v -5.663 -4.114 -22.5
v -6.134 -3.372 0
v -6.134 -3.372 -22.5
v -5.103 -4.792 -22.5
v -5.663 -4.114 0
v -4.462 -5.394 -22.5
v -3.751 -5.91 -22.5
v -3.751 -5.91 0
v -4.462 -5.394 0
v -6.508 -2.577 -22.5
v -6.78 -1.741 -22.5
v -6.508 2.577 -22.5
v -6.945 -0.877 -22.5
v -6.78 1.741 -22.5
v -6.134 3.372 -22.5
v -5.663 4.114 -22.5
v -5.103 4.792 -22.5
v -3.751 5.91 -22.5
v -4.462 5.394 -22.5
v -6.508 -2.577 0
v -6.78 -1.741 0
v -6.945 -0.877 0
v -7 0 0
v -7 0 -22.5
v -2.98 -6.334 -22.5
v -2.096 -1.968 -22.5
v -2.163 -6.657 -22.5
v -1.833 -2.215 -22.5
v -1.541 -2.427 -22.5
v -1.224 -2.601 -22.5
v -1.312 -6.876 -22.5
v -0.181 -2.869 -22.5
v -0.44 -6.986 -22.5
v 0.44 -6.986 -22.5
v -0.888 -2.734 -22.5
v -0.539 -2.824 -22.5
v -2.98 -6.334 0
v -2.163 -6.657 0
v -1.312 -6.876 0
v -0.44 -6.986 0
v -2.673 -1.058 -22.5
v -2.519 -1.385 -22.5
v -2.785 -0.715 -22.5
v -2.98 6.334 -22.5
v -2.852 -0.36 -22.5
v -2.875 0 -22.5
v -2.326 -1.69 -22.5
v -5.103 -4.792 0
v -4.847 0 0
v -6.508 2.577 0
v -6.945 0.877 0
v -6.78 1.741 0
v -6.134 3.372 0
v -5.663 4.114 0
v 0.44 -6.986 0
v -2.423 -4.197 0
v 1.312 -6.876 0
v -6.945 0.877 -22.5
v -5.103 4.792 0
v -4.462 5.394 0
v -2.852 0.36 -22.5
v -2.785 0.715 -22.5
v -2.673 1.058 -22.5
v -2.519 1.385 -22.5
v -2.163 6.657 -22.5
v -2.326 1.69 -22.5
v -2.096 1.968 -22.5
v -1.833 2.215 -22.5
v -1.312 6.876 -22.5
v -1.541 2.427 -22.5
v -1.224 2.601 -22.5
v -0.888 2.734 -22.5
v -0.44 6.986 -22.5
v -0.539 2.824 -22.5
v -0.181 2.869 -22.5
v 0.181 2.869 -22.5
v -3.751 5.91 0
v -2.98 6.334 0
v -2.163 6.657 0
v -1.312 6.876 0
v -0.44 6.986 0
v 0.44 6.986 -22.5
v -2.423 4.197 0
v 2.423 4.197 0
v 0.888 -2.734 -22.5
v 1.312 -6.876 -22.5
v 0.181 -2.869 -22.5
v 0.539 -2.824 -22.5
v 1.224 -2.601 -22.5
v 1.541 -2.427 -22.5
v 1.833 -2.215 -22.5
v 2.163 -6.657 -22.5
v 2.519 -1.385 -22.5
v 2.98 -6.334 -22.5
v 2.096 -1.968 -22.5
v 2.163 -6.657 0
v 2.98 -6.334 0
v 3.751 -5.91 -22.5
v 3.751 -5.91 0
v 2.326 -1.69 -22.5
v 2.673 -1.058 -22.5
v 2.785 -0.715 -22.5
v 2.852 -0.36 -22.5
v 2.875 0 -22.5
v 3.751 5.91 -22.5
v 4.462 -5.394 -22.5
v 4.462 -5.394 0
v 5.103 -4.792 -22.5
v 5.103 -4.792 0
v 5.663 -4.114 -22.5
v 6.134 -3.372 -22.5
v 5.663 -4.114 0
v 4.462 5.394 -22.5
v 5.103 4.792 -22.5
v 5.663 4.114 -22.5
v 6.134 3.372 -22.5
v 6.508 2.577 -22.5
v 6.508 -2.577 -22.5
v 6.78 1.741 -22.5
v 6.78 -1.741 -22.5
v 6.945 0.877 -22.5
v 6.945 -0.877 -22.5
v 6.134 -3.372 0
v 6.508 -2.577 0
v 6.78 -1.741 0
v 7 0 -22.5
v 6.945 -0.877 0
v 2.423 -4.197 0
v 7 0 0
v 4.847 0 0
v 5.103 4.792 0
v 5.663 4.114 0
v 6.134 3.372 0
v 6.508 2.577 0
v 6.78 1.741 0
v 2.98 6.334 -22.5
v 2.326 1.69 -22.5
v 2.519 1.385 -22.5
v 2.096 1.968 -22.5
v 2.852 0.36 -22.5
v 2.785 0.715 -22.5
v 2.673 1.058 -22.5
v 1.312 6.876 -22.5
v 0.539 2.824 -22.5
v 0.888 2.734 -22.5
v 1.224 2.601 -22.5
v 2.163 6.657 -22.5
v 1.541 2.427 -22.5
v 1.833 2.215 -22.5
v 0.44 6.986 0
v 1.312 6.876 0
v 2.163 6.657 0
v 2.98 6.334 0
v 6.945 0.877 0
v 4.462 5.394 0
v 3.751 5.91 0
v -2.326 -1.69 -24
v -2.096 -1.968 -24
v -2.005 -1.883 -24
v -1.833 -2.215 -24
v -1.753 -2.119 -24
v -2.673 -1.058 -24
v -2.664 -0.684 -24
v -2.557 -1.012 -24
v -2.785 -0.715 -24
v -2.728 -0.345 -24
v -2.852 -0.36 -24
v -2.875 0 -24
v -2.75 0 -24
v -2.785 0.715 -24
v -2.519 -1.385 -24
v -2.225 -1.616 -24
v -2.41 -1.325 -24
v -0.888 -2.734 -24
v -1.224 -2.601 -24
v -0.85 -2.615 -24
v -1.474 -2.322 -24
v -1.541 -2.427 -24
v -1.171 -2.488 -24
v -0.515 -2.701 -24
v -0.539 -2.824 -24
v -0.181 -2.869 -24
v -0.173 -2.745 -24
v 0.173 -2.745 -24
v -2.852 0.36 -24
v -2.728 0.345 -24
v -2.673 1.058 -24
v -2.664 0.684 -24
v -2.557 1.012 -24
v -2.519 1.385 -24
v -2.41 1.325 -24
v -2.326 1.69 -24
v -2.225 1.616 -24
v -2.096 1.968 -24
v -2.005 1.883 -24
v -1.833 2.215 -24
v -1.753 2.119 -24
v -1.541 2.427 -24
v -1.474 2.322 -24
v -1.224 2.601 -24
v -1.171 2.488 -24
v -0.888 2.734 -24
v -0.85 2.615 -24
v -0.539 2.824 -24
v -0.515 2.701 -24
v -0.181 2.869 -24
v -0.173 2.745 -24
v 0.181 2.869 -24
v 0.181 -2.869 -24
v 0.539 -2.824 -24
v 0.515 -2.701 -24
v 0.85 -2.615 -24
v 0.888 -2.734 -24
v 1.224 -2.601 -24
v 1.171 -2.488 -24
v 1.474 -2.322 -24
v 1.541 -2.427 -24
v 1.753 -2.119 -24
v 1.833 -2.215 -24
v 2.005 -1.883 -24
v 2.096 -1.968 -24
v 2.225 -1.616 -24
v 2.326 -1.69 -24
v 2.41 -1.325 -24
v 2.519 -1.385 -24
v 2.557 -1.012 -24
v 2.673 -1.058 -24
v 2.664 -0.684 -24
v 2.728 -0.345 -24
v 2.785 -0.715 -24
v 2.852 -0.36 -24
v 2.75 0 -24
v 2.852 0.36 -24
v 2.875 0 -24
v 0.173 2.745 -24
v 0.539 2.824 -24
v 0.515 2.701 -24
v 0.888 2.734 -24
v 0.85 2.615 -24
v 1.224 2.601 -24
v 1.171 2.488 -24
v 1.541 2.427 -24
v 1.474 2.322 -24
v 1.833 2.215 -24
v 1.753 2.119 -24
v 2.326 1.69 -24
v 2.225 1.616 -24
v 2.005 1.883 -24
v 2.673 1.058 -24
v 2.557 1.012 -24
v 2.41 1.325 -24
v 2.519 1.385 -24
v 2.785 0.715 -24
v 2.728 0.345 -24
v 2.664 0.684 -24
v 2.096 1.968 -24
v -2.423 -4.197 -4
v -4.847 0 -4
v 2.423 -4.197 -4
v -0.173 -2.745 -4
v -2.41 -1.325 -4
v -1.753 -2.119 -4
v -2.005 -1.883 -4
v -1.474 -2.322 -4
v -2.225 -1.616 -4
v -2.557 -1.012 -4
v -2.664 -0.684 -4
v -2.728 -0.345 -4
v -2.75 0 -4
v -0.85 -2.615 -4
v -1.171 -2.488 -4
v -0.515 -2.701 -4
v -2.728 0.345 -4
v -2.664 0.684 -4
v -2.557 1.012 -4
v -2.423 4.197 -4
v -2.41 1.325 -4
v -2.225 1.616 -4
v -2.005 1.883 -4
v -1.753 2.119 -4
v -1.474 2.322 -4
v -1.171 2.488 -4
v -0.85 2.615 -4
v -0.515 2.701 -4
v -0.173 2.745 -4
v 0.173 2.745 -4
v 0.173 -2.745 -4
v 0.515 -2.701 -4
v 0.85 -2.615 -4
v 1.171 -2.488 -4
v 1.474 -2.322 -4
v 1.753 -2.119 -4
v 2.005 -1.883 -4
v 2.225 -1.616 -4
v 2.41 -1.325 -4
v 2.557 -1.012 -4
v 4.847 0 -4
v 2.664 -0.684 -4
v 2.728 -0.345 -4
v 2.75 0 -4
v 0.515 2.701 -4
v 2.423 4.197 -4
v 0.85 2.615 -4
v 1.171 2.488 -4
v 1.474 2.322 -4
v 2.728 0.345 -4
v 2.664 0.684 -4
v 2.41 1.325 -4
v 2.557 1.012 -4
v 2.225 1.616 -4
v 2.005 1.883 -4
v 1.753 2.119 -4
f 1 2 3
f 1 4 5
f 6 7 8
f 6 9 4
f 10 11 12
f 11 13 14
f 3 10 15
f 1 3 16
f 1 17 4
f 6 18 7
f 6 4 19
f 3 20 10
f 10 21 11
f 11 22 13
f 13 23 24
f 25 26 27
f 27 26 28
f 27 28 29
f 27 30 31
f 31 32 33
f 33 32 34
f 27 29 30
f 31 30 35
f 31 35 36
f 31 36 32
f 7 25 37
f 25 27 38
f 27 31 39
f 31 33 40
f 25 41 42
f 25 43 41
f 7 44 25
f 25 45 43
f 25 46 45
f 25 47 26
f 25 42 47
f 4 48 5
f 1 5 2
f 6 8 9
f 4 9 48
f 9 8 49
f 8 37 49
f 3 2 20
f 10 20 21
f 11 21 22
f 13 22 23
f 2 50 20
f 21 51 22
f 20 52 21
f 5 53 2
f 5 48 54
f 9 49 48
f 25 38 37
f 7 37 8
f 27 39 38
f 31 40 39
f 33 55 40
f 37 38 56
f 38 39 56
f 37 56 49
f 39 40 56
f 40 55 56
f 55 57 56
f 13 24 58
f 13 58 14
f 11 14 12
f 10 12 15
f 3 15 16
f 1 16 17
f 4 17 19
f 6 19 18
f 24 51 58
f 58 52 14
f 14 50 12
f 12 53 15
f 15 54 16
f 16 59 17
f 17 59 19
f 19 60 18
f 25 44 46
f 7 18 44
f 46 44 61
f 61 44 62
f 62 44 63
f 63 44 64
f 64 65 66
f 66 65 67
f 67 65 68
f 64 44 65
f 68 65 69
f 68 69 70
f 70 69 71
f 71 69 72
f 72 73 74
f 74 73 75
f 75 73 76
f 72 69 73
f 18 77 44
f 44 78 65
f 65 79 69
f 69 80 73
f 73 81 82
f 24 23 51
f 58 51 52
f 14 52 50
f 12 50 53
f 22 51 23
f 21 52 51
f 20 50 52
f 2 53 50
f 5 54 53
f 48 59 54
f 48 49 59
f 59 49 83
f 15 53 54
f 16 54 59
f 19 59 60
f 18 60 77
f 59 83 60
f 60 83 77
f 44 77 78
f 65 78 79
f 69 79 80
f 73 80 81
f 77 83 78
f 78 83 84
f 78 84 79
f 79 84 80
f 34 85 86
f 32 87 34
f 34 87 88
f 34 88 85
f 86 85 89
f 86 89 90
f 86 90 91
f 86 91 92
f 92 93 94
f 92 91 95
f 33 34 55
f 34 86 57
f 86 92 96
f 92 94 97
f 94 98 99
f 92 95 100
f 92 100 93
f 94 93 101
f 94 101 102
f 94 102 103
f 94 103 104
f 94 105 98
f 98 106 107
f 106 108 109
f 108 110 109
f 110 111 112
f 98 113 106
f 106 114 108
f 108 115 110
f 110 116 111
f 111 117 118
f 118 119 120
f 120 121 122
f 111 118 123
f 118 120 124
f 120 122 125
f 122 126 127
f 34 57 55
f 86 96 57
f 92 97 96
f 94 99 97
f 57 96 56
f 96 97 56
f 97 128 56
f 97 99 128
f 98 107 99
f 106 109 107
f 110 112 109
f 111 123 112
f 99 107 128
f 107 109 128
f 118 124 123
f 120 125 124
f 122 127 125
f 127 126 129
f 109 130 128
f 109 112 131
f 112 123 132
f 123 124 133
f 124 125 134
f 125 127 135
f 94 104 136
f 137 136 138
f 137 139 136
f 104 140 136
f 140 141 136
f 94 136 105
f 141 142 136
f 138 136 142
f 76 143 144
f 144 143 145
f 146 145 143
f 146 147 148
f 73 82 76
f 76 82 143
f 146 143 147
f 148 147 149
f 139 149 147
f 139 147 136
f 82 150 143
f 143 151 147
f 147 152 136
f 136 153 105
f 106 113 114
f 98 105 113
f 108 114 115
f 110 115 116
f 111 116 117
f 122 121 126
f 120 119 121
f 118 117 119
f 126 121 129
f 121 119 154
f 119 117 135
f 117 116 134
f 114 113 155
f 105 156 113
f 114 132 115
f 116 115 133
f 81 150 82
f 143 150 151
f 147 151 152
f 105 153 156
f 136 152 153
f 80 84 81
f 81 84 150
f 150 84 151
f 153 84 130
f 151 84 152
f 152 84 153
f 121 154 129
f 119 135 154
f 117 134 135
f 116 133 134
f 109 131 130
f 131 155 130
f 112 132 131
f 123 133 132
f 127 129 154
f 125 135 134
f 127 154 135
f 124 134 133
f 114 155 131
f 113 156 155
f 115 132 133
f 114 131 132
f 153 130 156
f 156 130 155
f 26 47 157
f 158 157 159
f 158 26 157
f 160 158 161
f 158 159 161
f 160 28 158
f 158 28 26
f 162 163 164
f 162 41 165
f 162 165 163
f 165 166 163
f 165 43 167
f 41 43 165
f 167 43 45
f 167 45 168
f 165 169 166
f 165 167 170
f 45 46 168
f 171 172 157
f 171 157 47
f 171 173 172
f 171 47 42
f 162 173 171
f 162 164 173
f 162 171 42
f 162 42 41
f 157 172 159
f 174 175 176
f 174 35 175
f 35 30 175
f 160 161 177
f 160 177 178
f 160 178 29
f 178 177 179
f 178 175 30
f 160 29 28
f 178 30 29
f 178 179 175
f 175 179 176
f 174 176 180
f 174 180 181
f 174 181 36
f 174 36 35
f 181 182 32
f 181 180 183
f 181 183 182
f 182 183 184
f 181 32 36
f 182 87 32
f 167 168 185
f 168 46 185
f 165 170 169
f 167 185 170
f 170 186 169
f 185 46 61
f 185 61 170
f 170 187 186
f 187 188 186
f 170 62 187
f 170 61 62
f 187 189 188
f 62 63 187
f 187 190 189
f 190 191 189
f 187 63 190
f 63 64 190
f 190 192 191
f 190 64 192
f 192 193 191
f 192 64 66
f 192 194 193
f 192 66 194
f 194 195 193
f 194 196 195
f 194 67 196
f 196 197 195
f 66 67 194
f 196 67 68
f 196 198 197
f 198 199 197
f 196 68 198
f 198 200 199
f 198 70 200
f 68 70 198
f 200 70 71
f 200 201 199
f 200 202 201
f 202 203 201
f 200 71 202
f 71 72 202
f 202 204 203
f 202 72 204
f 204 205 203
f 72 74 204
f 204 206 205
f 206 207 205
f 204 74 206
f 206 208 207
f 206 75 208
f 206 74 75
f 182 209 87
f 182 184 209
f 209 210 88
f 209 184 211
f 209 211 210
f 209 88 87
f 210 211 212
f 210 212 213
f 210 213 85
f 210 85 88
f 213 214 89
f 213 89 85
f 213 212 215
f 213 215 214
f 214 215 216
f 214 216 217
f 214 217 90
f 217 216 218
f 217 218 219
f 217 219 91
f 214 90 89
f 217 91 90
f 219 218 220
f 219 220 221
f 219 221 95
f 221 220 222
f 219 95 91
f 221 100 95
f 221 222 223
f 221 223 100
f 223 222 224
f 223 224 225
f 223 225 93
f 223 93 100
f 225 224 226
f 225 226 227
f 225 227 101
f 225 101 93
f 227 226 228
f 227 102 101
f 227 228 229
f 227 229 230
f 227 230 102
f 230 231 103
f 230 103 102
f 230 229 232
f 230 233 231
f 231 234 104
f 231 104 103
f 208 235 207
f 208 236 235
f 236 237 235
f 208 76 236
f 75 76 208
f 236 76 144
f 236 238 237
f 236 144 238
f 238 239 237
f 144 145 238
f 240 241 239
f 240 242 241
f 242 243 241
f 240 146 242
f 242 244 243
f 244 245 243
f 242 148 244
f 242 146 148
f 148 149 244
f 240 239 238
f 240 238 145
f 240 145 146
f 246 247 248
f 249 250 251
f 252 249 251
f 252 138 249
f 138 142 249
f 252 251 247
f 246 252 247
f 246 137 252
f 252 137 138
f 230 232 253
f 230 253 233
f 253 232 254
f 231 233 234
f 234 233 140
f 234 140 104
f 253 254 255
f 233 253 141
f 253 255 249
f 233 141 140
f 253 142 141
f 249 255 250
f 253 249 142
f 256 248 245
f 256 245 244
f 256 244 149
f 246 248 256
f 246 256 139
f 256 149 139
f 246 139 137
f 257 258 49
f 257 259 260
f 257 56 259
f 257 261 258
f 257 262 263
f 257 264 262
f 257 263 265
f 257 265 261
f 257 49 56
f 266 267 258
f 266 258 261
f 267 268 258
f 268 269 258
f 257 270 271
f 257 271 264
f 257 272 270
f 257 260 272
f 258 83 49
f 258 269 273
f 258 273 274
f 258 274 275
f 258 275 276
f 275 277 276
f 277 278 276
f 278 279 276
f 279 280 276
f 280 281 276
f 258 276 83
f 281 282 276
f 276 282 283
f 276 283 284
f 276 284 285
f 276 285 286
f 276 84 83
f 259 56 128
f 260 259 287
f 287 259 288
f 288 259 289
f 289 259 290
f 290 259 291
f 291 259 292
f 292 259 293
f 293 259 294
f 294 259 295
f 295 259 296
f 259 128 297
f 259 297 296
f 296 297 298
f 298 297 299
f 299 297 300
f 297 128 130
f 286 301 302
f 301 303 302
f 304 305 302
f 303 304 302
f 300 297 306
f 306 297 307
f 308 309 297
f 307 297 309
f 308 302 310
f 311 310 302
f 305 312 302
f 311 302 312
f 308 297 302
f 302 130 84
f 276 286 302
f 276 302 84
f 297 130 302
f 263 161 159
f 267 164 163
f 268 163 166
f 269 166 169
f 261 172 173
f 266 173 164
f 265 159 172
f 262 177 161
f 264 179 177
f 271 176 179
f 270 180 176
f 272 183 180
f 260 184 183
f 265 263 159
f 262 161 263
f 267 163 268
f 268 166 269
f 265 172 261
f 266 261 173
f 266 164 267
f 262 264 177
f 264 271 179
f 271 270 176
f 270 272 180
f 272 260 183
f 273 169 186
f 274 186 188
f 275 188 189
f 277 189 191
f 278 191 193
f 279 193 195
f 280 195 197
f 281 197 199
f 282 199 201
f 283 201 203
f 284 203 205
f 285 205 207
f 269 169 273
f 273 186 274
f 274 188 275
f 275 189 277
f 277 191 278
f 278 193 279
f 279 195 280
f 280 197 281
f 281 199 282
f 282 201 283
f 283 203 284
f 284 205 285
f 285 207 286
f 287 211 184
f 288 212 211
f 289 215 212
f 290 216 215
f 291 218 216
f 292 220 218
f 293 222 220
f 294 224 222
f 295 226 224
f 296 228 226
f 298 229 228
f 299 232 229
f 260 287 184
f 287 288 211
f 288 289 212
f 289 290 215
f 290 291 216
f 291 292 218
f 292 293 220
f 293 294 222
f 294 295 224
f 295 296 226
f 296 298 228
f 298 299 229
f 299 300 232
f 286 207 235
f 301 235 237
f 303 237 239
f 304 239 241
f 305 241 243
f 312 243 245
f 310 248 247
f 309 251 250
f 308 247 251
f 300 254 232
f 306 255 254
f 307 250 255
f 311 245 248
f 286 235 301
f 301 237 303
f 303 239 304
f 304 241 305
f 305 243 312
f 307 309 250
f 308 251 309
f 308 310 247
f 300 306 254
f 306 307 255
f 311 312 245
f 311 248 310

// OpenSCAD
$fn = 50;

difference() {
	union() {
		translate(v = [0, 0, -22.5]) {
			cylinder(h = 22.5, r = 7.0);
		}
		#translate(v = [0, 0, -24.0]) {
			cylinder(h = 24, r = 2.875);
		}
	}
	union() {
		translate(v = [0, 0, 0]) {
			rotate(a = [0, 0, 0]) {
				difference() {
					union() {
						translate(v = [0, 0, -4]) {
							linear_extrude(height = 4) {
								polygon(points = [[4.8468, 0.0], [2.4234000000000004, 4.197451927062417], [-2.423399999999999, 4.197451927062417], [-4.8468, 5.935618106107392e-16], [-2.423400000000002, -4.197451927062416], [2.423399999999997, -4.197451927062419]]);
							}
						}
					}
					union();
				}
			}
		}
		#translate(v = [0, 0, -100.0]) {
			cylinder(h = 200, r = 2.75);
		}
	}
}
